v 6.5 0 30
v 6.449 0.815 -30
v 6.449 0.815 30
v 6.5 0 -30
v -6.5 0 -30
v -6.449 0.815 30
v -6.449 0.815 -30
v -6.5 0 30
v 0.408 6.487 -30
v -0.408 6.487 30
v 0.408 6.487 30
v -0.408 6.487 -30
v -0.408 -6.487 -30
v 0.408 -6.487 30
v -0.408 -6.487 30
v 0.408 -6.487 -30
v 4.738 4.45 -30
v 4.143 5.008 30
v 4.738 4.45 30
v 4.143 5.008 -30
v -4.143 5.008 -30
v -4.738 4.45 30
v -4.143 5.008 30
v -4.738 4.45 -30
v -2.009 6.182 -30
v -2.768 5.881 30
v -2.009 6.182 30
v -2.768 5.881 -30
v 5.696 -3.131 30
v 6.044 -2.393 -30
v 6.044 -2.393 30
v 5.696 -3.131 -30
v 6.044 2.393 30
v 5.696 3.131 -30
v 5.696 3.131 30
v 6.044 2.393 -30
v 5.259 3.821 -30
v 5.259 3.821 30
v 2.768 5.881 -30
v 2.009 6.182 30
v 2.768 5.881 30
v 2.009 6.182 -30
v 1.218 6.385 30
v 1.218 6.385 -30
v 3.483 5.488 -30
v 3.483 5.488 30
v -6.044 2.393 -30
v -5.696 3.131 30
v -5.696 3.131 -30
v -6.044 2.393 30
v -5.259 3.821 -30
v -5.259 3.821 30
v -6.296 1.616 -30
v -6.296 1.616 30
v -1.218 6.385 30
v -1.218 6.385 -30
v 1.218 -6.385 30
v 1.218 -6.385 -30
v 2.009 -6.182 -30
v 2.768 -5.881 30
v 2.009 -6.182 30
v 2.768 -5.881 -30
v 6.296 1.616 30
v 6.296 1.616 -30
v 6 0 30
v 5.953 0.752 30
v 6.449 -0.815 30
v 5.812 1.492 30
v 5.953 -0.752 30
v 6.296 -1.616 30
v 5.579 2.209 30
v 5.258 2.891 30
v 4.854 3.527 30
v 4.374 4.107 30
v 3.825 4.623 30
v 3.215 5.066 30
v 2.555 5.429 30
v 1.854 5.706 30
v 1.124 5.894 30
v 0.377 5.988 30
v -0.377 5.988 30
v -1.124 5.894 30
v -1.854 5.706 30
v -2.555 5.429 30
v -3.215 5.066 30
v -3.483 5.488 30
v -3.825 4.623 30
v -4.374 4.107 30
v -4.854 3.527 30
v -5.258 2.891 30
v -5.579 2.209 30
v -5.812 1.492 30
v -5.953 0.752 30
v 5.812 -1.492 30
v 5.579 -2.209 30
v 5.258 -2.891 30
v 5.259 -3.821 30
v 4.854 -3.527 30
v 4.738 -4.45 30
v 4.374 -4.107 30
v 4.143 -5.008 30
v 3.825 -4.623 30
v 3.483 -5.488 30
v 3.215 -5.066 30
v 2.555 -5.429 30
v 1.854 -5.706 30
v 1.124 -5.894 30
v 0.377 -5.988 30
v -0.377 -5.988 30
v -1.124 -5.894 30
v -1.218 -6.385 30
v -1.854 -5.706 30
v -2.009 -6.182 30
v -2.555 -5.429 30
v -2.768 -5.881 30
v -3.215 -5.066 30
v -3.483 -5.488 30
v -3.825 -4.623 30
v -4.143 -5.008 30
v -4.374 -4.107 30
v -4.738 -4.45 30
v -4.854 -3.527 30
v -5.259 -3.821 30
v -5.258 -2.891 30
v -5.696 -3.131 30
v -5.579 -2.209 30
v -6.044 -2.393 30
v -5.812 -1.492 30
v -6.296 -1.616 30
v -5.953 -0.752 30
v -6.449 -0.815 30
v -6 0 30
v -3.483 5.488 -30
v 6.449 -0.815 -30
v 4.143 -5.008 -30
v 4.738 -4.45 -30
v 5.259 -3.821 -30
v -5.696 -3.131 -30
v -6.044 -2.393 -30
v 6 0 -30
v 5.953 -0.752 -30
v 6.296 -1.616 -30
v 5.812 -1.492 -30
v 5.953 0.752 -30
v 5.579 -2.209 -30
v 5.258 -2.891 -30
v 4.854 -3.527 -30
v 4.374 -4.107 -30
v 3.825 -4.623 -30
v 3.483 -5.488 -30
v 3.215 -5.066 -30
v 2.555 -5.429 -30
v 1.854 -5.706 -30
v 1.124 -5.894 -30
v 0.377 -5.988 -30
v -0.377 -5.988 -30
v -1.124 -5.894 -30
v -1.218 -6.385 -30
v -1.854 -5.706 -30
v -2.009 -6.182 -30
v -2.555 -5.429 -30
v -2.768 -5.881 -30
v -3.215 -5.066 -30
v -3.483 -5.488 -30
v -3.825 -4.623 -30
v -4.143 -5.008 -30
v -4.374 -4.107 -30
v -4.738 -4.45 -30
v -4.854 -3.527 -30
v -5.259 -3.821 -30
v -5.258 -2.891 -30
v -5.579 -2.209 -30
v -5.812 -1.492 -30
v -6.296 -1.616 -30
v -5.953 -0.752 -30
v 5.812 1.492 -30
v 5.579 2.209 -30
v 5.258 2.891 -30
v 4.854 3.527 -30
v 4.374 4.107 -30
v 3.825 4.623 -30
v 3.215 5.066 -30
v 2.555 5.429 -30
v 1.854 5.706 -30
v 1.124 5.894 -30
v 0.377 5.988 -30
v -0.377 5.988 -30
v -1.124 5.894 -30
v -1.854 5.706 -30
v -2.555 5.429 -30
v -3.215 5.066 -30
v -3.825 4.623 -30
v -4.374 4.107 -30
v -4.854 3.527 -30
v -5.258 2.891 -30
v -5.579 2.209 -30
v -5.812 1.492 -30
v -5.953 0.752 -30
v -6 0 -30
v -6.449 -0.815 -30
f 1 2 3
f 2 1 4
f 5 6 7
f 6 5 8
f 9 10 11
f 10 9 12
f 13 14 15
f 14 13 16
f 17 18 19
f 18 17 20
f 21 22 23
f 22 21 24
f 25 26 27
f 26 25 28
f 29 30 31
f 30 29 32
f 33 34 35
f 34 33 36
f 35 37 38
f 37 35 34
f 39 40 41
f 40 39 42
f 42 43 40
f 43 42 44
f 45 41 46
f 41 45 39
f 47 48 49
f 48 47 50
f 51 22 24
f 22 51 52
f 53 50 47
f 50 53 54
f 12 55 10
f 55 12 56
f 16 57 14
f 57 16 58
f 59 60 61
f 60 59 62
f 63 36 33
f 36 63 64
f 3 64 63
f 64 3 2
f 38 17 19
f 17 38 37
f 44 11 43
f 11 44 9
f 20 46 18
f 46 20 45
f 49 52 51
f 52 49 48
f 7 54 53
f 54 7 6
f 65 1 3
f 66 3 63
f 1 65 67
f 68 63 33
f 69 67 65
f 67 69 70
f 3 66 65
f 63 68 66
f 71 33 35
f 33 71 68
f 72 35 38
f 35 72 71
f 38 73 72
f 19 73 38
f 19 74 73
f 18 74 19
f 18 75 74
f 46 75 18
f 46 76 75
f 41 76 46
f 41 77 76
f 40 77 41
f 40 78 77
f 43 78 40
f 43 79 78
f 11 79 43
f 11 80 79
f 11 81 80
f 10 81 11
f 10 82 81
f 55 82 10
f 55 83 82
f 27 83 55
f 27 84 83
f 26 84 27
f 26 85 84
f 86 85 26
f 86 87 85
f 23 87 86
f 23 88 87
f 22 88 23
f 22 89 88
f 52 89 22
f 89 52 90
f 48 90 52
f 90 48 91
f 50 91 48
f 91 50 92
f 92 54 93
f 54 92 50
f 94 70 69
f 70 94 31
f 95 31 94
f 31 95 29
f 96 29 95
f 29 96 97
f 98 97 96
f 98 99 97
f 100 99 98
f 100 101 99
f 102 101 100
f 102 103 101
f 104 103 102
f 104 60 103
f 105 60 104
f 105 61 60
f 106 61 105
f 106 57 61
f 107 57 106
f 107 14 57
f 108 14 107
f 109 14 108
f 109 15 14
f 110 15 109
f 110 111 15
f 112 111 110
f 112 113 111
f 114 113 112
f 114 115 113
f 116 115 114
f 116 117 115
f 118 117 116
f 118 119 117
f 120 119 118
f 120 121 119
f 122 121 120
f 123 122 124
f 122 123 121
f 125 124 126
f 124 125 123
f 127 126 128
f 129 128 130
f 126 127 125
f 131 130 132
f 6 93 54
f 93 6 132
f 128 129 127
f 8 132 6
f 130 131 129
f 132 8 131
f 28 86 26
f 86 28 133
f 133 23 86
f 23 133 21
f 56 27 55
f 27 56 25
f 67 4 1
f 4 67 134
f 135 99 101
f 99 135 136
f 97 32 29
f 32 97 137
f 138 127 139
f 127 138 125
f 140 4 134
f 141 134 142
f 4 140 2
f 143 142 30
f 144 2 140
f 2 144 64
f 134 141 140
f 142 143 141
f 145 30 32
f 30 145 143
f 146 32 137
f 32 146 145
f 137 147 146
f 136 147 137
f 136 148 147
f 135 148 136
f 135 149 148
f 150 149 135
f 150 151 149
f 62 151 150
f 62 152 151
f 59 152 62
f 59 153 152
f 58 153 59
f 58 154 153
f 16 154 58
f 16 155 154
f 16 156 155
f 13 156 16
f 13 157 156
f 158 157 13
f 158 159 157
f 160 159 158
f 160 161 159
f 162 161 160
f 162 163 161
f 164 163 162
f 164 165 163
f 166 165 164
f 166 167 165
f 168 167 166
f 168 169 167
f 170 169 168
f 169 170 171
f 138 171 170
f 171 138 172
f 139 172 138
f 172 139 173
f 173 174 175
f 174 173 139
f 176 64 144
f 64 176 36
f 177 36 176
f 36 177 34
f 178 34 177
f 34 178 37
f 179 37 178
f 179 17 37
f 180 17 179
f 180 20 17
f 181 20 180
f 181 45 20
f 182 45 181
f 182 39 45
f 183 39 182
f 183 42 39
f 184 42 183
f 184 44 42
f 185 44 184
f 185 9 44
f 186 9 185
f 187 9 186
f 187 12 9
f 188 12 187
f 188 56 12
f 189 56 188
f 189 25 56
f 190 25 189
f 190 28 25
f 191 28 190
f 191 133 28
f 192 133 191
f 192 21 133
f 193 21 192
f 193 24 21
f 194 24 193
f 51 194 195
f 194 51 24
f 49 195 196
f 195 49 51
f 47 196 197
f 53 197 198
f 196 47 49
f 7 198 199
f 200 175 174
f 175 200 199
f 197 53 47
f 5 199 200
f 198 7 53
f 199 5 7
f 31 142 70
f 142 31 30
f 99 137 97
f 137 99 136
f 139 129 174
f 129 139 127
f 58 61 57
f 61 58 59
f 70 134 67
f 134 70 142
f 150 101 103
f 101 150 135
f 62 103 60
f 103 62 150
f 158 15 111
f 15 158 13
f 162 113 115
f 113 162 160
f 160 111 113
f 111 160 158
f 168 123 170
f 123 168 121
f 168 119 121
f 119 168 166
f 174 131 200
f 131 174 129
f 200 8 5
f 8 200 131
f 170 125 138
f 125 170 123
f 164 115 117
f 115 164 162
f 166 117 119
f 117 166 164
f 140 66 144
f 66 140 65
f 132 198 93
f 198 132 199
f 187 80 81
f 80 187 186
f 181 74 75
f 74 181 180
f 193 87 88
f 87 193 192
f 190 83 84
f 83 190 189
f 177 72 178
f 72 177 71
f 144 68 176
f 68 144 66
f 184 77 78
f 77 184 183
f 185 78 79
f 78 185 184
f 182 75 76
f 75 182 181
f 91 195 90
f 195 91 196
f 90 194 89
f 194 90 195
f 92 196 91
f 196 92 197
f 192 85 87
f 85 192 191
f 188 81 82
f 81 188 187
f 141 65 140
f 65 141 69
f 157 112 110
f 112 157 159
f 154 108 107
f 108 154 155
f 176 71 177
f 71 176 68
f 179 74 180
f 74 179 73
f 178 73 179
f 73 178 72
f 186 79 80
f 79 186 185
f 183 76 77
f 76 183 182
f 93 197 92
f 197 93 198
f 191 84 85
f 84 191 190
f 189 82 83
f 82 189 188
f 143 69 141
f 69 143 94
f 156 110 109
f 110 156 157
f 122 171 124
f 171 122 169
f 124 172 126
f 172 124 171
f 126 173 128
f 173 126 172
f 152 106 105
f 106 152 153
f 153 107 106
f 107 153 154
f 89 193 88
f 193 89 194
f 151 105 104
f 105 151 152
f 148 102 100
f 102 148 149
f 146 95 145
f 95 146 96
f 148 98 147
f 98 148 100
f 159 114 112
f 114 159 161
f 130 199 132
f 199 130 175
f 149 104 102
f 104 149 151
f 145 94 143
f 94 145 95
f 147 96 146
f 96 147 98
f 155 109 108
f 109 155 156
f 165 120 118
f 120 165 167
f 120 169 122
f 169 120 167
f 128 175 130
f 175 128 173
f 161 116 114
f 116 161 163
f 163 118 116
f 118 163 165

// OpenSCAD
$fn = 50;


difference() {
	union() {
		translate(v = [0, 0, -30.0000000000]) {
			cylinder(h = 60, r = 6.5000000000);
		}
	}
	union() {
		translate(v = [0, 0, -100.0000000000]) {
			cylinder(h = 200, r = 6);
		}
	}
}
